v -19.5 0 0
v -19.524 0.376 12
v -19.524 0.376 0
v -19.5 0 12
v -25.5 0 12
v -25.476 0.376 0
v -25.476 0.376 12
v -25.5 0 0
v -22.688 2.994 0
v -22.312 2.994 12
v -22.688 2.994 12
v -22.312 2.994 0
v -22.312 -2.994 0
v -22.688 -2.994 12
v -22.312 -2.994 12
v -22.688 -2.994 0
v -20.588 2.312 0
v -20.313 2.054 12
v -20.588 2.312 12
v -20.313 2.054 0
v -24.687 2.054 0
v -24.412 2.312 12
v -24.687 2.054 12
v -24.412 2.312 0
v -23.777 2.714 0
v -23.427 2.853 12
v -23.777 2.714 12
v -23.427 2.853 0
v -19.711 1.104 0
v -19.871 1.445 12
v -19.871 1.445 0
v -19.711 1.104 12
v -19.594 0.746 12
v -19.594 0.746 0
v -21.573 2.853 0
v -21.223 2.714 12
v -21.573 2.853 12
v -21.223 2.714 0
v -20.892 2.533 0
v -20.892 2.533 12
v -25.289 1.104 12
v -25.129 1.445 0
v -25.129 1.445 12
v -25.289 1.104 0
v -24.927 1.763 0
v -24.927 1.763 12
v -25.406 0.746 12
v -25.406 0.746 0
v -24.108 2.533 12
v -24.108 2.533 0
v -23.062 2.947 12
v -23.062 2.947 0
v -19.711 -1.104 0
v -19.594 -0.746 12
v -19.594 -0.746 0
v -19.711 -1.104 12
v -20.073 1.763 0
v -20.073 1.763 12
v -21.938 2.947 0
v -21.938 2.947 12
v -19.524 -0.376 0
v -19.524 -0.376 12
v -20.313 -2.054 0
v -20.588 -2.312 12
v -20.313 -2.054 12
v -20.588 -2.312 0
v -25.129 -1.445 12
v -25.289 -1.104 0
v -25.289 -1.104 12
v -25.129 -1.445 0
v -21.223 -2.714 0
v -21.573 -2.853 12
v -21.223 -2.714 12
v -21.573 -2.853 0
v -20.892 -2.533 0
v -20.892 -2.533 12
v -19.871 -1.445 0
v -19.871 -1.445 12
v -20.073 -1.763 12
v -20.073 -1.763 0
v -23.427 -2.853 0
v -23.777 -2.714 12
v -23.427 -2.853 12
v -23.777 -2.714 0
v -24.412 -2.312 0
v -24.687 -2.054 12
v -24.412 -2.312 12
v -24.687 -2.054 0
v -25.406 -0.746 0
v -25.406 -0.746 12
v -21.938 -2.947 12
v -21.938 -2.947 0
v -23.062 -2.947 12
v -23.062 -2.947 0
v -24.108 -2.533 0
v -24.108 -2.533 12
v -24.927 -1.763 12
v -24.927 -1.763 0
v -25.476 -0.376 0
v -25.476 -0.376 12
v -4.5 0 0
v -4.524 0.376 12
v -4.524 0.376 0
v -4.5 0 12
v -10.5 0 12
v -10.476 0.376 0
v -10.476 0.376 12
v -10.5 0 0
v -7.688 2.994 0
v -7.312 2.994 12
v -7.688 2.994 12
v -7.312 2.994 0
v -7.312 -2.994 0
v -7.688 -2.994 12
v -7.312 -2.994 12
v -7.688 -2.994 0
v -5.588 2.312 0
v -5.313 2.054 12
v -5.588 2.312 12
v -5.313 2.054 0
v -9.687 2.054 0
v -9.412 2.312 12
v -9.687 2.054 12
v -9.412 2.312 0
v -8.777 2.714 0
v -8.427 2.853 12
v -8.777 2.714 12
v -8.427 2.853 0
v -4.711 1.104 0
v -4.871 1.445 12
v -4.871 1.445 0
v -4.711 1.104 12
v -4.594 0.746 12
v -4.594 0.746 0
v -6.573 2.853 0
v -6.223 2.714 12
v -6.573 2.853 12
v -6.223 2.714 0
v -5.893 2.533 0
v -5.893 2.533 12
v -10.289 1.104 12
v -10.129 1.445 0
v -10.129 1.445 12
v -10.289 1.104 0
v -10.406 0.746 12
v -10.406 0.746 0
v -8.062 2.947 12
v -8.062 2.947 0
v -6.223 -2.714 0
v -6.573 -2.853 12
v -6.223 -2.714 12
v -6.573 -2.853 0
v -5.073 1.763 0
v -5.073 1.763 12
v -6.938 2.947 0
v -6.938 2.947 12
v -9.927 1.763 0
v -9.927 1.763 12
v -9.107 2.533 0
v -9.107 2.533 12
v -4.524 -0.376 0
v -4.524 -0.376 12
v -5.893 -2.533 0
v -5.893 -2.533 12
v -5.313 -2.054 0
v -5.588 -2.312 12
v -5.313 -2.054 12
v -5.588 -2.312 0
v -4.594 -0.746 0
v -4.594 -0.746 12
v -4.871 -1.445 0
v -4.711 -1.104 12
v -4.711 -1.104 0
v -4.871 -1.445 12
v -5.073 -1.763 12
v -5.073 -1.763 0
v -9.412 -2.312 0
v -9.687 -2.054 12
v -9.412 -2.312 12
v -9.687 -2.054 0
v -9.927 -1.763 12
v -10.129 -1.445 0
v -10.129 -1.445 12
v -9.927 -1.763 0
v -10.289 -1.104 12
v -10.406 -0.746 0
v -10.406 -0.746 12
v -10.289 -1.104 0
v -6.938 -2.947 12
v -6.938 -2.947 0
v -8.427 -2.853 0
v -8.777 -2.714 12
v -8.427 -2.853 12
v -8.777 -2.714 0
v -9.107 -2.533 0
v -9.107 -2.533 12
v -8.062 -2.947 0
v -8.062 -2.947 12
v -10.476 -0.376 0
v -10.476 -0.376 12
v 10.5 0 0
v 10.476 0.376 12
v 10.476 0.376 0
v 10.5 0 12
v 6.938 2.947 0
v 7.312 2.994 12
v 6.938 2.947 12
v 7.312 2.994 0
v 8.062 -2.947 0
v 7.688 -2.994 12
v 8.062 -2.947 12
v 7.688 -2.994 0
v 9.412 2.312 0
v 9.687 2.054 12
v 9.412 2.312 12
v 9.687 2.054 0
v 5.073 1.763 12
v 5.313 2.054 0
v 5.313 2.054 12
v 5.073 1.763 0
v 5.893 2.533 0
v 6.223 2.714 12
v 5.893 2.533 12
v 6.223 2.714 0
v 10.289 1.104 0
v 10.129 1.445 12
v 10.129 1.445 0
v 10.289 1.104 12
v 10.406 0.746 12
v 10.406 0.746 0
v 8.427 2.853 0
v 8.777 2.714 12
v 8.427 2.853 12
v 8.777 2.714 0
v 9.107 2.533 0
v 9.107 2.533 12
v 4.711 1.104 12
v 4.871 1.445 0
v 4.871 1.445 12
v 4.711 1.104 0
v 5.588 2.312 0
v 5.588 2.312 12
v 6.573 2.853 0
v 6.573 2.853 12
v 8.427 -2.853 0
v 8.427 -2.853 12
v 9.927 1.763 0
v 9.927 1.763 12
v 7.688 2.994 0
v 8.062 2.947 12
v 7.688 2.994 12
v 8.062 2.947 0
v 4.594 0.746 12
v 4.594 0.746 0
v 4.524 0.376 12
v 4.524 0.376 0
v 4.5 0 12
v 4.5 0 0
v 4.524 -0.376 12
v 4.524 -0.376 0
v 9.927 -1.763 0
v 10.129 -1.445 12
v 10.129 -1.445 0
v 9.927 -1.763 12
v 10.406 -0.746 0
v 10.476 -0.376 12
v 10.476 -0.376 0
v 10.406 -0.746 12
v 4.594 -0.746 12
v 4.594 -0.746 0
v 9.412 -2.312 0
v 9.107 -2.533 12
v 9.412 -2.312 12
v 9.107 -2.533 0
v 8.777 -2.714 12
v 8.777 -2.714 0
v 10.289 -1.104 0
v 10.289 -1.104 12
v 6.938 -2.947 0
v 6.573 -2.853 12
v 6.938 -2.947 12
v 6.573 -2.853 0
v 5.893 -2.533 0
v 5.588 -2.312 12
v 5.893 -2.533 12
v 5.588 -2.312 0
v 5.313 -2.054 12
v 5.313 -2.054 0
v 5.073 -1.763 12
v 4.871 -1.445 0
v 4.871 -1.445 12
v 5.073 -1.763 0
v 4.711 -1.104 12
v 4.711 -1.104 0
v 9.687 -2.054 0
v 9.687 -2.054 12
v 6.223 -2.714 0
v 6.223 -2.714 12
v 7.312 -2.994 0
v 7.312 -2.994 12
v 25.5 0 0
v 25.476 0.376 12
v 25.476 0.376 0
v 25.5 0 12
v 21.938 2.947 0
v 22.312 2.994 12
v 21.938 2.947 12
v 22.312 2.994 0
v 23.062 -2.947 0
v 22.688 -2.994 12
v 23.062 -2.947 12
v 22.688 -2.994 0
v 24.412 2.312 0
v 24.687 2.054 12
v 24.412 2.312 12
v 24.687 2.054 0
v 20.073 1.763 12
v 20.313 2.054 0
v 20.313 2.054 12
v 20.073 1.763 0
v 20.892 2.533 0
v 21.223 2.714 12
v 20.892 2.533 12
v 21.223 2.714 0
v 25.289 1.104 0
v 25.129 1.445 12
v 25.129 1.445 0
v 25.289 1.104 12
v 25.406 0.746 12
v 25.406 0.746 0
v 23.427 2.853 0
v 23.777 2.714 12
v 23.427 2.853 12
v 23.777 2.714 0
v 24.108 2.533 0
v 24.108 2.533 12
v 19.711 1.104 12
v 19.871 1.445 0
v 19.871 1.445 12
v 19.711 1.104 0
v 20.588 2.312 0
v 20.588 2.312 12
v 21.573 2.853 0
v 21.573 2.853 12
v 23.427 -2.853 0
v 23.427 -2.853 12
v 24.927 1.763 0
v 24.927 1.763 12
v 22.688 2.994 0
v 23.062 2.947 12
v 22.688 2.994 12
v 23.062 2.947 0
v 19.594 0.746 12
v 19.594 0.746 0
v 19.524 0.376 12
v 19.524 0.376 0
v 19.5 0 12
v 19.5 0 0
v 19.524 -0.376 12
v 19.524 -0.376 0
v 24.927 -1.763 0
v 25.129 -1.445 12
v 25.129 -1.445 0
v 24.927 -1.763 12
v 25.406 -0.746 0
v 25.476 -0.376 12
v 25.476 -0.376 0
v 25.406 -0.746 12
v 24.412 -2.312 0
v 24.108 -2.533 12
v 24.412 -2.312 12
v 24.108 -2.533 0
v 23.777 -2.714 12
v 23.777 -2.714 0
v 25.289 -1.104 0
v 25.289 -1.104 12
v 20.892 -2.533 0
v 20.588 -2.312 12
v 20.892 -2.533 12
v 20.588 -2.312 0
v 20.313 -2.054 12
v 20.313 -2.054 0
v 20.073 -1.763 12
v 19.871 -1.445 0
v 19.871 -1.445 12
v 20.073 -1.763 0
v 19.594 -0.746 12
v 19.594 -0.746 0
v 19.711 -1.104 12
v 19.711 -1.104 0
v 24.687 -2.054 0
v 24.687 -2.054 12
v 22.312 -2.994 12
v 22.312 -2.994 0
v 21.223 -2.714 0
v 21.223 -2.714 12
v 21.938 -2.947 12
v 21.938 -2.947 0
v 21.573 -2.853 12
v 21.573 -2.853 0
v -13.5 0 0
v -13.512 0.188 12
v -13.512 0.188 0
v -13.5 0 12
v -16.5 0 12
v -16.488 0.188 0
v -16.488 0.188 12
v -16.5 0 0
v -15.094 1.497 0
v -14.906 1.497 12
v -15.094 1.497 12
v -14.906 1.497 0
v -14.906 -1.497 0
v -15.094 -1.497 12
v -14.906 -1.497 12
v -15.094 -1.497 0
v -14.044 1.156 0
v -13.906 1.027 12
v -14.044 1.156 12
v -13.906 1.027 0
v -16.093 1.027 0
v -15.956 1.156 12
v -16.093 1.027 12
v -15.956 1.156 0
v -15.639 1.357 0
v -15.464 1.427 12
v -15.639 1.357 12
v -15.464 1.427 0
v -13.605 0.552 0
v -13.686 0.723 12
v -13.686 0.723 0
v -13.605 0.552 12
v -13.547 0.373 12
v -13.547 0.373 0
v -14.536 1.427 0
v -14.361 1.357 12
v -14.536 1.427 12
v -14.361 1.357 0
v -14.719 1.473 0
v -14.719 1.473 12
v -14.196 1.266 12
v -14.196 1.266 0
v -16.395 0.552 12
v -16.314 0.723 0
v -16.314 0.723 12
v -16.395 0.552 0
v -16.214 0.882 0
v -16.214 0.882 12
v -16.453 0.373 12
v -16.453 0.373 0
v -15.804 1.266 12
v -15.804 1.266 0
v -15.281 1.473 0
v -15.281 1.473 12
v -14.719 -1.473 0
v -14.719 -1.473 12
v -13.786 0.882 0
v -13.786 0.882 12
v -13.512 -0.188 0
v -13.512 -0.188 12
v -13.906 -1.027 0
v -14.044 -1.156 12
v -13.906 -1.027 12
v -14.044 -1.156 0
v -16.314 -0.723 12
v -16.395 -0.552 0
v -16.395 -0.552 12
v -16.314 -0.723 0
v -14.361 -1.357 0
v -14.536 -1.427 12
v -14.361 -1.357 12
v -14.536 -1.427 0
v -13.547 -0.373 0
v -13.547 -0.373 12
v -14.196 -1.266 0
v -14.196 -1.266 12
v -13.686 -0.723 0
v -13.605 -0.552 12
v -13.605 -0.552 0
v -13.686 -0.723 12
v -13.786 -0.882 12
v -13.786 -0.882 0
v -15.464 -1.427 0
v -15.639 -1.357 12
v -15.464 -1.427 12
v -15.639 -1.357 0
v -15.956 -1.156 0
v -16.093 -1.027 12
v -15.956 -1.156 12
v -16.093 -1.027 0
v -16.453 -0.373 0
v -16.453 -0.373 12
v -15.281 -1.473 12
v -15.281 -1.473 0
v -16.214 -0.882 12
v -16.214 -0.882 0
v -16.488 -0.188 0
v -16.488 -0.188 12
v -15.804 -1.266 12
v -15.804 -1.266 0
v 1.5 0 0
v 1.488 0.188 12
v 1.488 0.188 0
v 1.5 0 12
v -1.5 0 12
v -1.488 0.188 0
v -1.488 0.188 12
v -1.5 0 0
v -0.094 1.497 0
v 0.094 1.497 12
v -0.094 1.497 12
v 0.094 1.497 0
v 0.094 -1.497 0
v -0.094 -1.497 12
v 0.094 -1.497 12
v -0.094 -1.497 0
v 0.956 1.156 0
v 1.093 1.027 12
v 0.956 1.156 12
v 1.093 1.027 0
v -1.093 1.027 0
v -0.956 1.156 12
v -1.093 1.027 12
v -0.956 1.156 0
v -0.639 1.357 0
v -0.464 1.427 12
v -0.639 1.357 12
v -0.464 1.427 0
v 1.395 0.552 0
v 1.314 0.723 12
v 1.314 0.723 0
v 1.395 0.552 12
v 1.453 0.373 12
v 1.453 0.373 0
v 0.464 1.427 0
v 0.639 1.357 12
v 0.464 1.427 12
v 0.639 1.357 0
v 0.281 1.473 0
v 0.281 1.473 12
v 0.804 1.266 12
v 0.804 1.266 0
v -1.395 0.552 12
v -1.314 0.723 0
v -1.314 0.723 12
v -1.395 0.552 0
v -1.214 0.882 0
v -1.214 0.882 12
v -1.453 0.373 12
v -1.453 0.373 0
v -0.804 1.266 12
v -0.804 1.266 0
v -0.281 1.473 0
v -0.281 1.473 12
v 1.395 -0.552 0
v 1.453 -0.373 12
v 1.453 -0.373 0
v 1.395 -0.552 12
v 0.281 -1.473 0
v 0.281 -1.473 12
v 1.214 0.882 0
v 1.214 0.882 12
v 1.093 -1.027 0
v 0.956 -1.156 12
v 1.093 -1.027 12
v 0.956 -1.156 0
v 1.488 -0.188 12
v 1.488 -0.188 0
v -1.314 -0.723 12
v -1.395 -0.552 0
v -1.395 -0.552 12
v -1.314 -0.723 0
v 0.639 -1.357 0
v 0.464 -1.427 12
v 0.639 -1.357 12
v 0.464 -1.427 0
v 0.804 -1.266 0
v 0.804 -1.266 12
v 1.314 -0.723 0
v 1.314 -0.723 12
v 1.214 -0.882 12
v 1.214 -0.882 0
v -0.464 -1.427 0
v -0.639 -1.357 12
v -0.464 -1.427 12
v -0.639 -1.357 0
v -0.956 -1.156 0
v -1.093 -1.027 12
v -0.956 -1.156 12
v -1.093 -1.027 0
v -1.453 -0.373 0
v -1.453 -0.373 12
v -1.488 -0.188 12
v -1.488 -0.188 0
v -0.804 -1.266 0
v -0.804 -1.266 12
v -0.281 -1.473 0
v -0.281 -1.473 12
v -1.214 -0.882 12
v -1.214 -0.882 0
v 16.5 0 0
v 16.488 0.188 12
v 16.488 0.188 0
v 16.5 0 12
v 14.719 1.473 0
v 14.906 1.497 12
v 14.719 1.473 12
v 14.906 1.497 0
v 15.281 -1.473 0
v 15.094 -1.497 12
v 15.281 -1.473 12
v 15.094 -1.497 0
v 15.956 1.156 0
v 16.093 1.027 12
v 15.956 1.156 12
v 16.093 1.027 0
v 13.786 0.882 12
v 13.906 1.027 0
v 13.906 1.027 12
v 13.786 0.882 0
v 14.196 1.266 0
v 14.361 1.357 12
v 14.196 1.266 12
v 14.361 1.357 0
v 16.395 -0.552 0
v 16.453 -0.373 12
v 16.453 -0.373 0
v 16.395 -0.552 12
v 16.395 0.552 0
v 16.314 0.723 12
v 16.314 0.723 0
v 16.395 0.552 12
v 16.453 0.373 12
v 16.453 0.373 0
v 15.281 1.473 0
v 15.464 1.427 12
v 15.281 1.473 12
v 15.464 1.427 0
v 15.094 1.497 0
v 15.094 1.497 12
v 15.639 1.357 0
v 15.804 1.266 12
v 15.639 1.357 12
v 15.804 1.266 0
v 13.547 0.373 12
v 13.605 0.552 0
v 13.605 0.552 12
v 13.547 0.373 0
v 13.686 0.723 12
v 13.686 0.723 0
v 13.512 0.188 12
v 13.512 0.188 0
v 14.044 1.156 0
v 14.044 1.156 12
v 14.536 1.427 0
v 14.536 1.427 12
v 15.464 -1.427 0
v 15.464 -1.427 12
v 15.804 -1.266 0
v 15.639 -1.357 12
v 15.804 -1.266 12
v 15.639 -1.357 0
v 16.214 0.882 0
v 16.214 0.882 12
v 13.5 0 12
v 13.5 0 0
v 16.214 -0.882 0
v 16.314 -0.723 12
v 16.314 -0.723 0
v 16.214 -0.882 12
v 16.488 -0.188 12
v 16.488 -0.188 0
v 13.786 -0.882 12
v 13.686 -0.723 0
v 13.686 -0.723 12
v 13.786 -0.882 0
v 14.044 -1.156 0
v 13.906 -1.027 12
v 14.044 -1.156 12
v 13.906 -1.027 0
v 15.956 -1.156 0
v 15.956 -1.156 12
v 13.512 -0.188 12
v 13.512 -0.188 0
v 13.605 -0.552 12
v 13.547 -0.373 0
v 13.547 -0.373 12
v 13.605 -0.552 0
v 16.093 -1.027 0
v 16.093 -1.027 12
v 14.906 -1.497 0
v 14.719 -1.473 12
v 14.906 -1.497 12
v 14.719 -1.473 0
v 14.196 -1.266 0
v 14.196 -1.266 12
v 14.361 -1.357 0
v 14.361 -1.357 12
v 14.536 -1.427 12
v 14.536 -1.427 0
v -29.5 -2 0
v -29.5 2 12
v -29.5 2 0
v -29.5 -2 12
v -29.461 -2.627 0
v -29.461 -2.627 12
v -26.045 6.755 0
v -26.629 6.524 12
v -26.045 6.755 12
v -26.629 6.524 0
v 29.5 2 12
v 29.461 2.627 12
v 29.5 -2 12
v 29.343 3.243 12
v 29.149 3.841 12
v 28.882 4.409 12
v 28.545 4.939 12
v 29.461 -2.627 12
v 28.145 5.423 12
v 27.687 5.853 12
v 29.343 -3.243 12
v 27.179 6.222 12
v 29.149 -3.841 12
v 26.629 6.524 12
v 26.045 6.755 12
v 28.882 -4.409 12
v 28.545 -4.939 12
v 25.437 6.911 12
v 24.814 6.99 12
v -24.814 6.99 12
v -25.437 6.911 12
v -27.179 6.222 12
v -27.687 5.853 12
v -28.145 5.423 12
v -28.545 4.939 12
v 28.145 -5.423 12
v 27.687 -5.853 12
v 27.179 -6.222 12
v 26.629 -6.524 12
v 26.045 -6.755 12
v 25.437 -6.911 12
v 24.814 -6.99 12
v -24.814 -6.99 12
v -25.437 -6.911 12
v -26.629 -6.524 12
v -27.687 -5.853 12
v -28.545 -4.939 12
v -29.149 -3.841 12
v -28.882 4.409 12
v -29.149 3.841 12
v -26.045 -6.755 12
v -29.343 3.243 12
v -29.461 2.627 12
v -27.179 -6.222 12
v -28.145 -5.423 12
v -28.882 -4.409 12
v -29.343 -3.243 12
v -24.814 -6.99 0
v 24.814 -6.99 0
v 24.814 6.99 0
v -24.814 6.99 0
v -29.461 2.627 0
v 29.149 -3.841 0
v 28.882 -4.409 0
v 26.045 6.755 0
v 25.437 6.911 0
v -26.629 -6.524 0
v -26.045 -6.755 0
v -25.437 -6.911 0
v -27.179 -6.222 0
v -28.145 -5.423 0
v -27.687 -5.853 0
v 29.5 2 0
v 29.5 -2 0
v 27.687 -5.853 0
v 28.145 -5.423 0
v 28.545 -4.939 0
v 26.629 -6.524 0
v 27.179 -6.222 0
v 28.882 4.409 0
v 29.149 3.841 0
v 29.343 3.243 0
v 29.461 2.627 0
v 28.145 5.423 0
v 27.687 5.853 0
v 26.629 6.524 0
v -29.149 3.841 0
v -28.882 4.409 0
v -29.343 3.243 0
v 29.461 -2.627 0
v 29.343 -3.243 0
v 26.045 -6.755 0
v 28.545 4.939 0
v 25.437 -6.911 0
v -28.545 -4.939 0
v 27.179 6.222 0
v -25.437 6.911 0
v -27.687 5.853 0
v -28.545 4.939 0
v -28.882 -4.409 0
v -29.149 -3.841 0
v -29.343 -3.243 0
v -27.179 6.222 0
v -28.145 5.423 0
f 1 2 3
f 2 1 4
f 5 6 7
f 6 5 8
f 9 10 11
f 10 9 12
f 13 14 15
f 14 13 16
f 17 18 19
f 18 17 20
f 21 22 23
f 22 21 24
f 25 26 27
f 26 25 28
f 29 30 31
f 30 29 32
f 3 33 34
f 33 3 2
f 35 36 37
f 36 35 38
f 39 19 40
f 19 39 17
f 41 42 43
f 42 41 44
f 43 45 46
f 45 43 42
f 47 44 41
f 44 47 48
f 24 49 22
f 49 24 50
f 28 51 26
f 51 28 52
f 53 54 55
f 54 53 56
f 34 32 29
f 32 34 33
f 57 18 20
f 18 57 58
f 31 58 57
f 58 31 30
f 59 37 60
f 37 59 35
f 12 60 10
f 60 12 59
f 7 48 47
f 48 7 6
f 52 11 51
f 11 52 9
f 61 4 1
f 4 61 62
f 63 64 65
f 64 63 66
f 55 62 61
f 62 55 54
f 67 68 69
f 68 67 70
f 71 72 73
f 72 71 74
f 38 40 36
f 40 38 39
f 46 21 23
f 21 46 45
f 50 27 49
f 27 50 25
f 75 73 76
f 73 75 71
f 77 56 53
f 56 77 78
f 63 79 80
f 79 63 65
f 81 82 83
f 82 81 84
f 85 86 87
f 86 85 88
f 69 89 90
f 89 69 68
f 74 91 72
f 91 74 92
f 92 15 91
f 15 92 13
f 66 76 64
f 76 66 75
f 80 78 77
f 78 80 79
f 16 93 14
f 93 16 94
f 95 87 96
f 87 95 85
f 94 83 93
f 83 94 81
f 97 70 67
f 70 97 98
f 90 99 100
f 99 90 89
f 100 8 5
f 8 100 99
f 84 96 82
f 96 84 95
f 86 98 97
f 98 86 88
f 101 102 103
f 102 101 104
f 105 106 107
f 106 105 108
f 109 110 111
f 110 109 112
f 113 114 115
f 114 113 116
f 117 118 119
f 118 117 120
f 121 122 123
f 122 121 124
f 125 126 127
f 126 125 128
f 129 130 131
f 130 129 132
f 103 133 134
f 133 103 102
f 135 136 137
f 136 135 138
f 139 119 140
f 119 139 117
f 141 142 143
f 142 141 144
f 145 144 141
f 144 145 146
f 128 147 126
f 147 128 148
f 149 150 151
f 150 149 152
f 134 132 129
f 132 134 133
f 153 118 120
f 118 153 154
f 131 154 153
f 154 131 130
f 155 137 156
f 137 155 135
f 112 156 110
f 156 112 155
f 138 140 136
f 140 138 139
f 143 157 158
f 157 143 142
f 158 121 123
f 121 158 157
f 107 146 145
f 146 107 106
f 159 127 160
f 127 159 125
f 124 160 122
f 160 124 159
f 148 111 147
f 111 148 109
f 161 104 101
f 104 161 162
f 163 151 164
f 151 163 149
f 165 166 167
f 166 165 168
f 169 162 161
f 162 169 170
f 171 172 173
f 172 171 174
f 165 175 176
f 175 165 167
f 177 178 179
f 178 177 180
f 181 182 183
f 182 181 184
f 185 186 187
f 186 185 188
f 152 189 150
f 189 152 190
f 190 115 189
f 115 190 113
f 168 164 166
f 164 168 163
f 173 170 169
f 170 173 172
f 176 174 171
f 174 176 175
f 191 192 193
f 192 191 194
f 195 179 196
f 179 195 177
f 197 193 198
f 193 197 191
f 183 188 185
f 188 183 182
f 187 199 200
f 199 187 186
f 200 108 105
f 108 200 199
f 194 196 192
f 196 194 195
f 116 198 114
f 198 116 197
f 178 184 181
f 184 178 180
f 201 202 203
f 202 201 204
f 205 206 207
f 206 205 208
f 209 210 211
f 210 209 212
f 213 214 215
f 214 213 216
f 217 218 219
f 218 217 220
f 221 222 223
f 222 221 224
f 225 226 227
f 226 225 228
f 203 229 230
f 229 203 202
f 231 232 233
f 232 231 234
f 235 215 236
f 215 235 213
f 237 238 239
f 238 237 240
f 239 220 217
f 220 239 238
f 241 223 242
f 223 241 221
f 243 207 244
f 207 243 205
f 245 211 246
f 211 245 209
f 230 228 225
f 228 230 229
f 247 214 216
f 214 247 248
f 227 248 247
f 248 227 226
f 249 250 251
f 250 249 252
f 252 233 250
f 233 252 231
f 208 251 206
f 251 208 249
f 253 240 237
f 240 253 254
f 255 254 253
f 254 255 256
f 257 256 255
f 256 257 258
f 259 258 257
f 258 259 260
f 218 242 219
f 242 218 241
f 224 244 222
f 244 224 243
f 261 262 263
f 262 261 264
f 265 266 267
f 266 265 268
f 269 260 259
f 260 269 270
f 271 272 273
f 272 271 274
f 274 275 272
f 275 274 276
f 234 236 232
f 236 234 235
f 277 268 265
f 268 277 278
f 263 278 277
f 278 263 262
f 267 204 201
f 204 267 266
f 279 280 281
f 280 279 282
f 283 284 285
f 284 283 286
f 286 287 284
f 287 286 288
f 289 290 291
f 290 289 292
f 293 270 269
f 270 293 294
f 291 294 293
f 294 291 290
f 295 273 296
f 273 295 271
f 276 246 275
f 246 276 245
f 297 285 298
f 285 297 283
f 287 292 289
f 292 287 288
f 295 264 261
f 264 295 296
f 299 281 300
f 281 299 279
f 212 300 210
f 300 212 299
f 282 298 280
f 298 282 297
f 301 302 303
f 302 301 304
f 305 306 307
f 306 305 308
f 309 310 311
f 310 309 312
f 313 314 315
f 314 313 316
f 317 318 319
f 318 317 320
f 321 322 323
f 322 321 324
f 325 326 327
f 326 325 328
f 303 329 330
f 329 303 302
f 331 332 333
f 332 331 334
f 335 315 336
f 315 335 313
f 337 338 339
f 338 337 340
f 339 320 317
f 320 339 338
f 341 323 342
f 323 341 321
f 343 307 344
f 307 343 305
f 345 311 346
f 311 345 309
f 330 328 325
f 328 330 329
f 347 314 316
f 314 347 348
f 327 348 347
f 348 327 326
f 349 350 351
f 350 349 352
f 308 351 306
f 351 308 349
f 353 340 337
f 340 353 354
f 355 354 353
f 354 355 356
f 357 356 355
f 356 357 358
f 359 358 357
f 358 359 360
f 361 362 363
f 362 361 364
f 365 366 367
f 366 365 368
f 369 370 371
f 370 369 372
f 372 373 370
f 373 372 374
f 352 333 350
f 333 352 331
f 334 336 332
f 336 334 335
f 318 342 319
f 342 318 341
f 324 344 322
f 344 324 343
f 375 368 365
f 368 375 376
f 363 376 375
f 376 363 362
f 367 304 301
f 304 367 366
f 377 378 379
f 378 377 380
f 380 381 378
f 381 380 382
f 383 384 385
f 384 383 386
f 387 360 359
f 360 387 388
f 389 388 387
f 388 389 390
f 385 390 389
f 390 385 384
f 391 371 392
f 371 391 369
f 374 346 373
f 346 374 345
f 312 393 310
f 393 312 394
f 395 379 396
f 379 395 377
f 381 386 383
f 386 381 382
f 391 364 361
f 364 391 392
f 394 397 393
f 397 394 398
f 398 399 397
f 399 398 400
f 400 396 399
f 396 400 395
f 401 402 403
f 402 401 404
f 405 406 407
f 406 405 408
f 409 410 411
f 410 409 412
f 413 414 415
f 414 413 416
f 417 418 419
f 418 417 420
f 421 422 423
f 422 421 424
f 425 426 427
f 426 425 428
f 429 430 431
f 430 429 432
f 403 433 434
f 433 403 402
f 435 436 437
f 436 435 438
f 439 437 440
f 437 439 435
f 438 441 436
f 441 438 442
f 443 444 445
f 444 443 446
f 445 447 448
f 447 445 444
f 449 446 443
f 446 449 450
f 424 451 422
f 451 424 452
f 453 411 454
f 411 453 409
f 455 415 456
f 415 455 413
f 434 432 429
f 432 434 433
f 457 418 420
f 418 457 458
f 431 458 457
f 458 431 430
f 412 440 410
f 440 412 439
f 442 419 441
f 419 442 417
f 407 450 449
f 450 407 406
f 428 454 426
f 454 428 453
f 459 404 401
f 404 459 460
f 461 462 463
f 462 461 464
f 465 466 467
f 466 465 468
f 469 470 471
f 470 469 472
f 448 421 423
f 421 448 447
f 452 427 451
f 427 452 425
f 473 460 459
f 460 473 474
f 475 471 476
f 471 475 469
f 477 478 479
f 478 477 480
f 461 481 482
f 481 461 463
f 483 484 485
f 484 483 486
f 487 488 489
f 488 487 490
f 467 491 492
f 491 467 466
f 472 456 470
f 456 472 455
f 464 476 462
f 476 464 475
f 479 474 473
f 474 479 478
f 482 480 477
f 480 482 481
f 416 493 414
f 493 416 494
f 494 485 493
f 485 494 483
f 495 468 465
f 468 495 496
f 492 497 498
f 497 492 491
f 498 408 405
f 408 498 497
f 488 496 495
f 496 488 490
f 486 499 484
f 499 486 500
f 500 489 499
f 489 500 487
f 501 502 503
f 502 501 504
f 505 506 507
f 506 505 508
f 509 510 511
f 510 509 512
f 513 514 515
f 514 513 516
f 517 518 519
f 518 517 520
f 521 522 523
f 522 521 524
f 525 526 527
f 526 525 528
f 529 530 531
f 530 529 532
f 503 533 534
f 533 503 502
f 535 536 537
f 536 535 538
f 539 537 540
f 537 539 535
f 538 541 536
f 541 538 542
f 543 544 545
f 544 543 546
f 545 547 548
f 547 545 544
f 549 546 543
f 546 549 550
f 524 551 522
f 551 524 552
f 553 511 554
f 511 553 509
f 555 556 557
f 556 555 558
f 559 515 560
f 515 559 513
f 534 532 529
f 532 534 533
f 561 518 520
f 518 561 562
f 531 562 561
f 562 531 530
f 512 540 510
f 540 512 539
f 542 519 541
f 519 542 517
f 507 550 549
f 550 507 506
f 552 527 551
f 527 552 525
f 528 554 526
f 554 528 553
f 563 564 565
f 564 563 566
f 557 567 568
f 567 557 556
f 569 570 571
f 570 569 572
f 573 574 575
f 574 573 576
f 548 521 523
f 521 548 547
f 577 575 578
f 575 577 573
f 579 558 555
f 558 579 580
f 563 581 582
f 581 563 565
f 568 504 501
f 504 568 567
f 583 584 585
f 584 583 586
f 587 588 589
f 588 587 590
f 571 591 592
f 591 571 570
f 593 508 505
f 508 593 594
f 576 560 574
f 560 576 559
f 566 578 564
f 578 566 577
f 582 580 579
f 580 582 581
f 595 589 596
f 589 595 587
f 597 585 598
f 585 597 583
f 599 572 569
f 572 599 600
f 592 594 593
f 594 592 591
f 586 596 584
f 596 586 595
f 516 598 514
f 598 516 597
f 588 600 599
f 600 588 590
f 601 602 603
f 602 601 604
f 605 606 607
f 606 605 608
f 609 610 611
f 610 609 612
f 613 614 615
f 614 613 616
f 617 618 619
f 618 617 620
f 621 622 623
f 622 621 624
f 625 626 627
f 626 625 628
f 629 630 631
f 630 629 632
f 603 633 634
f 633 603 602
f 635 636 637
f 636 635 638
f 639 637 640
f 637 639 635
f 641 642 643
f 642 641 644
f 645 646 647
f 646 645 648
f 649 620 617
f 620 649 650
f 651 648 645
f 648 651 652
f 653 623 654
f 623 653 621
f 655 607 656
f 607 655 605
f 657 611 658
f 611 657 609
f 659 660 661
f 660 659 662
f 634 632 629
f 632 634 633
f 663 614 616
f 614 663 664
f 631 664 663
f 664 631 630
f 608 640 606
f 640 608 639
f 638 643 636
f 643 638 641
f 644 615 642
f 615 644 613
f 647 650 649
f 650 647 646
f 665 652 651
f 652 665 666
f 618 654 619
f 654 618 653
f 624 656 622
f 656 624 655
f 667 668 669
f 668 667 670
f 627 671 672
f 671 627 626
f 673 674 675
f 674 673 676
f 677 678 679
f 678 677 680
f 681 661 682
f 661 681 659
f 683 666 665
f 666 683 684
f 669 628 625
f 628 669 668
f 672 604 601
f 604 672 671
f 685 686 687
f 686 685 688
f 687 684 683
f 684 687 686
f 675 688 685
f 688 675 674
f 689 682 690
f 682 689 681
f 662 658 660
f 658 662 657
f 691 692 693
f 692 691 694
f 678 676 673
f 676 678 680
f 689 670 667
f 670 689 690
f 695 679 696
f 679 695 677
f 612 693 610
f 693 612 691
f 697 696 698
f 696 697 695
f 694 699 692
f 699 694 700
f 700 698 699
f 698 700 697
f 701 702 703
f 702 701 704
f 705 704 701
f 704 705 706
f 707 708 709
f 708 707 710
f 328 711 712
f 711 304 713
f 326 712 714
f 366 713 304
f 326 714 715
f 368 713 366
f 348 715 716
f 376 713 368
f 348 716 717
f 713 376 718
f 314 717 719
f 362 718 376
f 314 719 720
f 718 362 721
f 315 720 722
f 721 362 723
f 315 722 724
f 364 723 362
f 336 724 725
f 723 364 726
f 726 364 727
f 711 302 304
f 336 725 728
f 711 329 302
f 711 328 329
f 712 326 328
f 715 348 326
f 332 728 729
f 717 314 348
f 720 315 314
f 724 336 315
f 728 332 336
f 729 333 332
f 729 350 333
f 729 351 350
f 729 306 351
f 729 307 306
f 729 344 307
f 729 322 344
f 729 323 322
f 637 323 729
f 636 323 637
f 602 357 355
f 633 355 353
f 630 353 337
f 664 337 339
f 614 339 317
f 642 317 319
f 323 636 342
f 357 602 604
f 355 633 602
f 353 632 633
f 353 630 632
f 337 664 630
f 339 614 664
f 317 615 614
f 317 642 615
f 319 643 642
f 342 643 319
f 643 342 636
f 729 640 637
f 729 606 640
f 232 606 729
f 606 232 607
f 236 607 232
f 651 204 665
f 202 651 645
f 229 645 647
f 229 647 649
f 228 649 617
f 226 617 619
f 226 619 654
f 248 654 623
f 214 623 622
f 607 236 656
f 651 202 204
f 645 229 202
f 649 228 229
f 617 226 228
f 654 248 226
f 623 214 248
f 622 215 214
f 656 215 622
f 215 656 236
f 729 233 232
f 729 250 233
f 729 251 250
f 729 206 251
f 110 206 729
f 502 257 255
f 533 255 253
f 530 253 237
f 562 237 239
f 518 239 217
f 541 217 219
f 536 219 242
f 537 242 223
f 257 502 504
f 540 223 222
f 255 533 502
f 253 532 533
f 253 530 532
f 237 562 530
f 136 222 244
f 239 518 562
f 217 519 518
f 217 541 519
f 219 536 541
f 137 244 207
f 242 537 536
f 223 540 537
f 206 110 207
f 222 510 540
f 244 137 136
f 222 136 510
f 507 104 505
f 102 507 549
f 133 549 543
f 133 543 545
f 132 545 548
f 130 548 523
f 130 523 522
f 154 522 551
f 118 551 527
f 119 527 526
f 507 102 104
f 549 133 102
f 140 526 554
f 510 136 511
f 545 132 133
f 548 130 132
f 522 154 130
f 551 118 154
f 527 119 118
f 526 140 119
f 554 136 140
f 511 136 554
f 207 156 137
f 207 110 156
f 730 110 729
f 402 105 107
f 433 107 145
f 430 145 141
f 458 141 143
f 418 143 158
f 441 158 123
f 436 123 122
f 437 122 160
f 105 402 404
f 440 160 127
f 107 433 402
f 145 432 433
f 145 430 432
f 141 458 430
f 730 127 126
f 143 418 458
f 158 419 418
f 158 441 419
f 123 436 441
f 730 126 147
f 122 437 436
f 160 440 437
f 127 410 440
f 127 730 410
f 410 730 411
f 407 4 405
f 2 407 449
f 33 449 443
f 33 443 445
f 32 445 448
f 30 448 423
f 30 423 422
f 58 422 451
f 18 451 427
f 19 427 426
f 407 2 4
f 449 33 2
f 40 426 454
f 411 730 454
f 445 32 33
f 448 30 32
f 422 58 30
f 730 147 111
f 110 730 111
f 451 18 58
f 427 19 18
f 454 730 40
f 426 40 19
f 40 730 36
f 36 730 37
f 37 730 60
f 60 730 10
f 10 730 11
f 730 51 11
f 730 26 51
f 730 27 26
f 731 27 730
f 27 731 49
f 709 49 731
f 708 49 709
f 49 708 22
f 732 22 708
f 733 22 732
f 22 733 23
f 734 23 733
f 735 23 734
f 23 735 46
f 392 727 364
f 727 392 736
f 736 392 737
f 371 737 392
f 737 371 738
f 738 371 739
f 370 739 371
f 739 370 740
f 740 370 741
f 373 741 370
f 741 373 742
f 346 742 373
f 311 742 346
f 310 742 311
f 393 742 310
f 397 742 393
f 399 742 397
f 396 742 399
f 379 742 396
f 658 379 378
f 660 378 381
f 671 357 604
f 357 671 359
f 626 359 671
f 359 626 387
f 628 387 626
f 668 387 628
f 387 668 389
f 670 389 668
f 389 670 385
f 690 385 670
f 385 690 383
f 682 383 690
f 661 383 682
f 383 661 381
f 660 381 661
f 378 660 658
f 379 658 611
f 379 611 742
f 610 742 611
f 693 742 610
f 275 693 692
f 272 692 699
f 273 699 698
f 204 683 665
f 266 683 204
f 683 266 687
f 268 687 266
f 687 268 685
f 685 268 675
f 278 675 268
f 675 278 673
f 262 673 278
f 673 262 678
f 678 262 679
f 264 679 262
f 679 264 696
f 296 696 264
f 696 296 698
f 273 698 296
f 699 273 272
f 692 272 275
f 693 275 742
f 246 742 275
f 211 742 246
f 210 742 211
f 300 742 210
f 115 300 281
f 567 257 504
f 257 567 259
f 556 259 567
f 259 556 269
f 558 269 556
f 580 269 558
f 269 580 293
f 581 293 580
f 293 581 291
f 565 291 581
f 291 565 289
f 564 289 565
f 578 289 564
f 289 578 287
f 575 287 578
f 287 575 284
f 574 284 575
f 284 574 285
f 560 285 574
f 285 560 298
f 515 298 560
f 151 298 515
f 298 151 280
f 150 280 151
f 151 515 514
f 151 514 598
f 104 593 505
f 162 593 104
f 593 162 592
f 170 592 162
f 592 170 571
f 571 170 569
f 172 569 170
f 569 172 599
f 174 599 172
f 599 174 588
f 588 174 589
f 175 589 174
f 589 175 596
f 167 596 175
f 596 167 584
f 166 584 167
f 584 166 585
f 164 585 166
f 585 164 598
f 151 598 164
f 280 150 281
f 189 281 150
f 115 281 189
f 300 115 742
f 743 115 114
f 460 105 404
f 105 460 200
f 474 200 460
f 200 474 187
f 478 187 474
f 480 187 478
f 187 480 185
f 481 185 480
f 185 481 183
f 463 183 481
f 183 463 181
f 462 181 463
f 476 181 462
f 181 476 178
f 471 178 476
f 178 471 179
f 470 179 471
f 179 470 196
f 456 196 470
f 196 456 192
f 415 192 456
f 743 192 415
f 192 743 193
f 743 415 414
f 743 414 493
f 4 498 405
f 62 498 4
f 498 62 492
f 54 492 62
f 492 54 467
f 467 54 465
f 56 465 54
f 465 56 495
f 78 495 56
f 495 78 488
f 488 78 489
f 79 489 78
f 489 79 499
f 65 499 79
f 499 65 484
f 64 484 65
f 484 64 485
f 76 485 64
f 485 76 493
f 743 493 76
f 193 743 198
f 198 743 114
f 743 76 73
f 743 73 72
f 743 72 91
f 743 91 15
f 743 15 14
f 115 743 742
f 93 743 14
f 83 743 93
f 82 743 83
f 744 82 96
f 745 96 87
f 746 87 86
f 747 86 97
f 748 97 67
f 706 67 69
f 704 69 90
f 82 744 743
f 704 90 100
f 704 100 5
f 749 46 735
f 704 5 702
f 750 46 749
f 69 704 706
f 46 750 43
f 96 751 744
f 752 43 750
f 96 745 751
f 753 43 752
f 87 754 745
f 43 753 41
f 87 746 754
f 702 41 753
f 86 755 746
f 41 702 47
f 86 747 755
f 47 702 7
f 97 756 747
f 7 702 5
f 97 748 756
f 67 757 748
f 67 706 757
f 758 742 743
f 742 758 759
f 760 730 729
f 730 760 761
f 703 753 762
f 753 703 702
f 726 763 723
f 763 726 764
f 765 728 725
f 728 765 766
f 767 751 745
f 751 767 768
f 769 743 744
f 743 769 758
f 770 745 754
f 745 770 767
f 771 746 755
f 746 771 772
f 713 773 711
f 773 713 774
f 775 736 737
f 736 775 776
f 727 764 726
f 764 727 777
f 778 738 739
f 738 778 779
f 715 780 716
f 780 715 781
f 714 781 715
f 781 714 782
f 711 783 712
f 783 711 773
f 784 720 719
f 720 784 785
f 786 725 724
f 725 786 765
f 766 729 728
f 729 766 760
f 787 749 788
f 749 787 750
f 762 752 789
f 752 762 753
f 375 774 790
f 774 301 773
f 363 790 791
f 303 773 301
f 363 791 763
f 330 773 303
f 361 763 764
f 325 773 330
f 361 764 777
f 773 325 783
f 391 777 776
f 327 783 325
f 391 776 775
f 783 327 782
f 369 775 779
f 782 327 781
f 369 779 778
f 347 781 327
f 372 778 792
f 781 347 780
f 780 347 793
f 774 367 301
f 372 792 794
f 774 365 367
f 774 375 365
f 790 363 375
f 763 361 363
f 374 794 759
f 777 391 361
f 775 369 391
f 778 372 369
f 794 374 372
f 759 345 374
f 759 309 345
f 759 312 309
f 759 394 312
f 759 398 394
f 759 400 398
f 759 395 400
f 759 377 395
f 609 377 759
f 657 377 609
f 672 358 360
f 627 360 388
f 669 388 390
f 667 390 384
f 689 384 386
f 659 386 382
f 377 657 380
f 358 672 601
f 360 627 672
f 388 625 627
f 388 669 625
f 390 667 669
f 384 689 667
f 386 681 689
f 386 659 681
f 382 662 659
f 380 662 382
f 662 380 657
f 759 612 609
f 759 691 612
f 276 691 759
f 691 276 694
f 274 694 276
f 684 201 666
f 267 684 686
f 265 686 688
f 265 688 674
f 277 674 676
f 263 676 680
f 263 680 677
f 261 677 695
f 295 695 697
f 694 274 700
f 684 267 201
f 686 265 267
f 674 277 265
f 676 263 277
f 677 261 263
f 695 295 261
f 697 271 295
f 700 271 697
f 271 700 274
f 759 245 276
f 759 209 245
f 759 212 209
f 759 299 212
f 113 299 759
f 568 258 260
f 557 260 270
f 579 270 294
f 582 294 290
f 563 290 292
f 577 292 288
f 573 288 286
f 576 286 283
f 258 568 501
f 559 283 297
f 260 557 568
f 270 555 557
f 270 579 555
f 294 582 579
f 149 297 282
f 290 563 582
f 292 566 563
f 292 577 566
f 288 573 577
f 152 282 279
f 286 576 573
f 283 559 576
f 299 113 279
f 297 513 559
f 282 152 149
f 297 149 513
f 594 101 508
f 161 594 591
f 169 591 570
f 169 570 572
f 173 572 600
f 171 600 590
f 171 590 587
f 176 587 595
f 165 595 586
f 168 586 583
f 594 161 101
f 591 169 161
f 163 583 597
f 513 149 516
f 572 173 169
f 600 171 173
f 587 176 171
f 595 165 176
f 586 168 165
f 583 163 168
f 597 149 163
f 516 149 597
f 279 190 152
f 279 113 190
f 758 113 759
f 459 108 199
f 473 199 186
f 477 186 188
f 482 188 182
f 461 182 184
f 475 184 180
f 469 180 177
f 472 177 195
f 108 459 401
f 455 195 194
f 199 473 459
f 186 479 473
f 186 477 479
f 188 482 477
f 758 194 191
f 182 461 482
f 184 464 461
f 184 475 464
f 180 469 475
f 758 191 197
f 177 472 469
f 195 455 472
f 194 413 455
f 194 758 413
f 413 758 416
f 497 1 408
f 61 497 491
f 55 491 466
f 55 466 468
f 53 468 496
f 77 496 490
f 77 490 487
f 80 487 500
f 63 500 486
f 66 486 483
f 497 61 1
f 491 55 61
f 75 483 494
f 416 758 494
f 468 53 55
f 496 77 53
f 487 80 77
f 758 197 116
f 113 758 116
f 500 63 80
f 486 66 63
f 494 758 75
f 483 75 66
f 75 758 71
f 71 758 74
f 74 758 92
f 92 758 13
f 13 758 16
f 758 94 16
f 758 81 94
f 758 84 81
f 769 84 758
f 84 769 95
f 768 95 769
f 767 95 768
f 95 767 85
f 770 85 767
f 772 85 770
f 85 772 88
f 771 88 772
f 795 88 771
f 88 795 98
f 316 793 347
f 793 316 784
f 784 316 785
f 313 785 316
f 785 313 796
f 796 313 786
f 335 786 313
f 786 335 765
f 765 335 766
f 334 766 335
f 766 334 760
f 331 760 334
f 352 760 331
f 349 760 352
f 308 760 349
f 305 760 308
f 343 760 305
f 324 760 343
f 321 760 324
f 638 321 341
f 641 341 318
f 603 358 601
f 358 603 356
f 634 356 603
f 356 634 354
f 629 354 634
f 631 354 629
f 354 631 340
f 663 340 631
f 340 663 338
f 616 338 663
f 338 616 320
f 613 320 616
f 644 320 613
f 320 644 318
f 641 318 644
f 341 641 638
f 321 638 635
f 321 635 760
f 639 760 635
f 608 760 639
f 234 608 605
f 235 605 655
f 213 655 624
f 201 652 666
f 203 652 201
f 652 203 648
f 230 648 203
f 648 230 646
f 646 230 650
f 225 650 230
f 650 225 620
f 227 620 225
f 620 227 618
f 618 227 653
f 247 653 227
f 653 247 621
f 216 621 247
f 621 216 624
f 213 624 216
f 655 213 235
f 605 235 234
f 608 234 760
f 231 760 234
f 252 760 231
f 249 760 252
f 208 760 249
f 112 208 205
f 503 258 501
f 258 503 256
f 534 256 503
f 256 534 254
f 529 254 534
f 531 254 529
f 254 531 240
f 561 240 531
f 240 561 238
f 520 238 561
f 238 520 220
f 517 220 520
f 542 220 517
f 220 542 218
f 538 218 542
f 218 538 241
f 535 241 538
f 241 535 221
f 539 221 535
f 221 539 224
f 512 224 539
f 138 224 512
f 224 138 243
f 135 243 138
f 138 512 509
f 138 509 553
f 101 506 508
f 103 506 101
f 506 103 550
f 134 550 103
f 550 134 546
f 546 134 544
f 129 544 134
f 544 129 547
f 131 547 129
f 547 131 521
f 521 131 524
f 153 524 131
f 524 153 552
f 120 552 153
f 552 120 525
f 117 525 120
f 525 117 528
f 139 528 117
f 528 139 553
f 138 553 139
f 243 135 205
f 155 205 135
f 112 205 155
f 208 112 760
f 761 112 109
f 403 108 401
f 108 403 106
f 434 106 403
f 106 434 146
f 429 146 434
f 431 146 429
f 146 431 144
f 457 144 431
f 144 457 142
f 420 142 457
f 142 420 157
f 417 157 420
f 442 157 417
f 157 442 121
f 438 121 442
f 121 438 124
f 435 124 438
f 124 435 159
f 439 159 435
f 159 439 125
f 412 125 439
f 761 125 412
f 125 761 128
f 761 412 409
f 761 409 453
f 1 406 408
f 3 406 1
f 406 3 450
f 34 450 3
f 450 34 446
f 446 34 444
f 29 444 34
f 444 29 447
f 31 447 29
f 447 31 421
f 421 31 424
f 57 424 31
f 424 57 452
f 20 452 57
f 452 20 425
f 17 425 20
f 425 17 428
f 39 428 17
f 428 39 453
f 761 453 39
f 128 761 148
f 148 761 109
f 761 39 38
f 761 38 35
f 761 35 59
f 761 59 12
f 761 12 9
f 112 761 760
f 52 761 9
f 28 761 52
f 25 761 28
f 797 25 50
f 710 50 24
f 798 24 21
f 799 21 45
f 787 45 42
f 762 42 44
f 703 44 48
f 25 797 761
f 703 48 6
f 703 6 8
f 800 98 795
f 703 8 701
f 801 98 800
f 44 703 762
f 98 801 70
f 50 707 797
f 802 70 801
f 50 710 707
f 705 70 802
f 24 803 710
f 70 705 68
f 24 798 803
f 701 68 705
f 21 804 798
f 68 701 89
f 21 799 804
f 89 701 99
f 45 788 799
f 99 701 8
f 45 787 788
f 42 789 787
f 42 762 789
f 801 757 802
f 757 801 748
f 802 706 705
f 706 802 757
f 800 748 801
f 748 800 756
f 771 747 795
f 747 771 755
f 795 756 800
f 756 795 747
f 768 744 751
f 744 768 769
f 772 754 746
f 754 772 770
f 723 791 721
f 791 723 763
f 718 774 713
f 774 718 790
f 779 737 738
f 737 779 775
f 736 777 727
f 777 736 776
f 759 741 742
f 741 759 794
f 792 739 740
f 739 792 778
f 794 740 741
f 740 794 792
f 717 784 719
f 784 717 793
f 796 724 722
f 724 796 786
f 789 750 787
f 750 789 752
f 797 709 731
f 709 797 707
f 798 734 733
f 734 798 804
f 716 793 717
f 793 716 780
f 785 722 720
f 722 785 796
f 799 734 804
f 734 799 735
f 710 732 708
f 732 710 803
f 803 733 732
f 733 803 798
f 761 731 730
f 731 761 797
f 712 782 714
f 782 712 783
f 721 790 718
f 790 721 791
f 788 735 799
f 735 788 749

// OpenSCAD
$fn = 50;


difference() {
	union() {
		translate(v = [0, 0, 0]) {
			rotate(a = [0, 0, 0]) {
				hull() {
					translate(v = [-24.5000000000, 2.0000000000, 0]) {
						rotate(a = [0, 0, 0]) {
							translate(v = [0, 0, 0]) {
								rotate(a = [0, 0, 0]) {
									cylinder(h = 12, r = 5);
								}
							}
						}
					}
					translate(v = [24.5000000000, 2.0000000000, 0]) {
						rotate(a = [0, 0, 0]) {
							translate(v = [0, 0, 0]) {
								rotate(a = [0, 0, 0]) {
									cylinder(h = 12, r = 5);
								}
							}
						}
					}
					translate(v = [-24.5000000000, -2.0000000000, 0]) {
						rotate(a = [0, 0, 0]) {
							translate(v = [0, 0, 0]) {
								rotate(a = [0, 0, 0]) {
									cylinder(h = 12, r = 5);
								}
							}
						}
					}
					translate(v = [24.5000000000, -2.0000000000, 0]) {
						rotate(a = [0, 0, 0]) {
							translate(v = [0, 0, 0]) {
								rotate(a = [0, 0, 0]) {
									cylinder(h = 12, r = 5);
								}
							}
						}
					}
				}
			}
		}
	}
	union() {
		translate(v = [-22.5000000000, 0.0000000000, 0]) {
			rotate(a = [0, 0, 0]) {
				translate(v = [0, 0, -50]) {
					rotate(a = [0, 0, 0]) {
						cylinder(h = 100, r = 3.0000000000);
					}
				}
			}
		}
		translate(v = [-7.5000000000, 0.0000000000, 0]) {
			rotate(a = [0, 0, 0]) {
				translate(v = [0, 0, -50]) {
					rotate(a = [0, 0, 0]) {
						cylinder(h = 100, r = 3.0000000000);
					}
				}
			}
		}
		translate(v = [7.5000000000, 0.0000000000, 0]) {
			rotate(a = [0, 0, 0]) {
				translate(v = [0, 0, -50]) {
					rotate(a = [0, 0, 0]) {
						cylinder(h = 100, r = 3.0000000000);
					}
				}
			}
		}
		translate(v = [22.5000000000, 0.0000000000, 0]) {
			rotate(a = [0, 0, 0]) {
				translate(v = [0, 0, -50]) {
					rotate(a = [0, 0, 0]) {
						cylinder(h = 100, r = 3.0000000000);
					}
				}
			}
		}
		translate(v = [-22.5000000000, 0.0000000000, 0]) {
			rotate(a = [0, 0, 0]) {
				translate(v = [0, 0, -50]) {
					rotate(a = [0, 0, 0]) {
						cylinder(h = 100, r = 1.5000000000);
					}
				}
			}
		}
		translate(v = [-15.0000000000, 0.0000000000, 0]) {
			rotate(a = [0, 0, 0]) {
				translate(v = [0, 0, -50]) {
					rotate(a = [0, 0, 0]) {
						cylinder(h = 100, r = 1.5000000000);
					}
				}
			}
		}
		translate(v = [-7.5000000000, 0.0000000000, 0]) {
			rotate(a = [0, 0, 0]) {
				translate(v = [0, 0, -50]) {
					rotate(a = [0, 0, 0]) {
						cylinder(h = 100, r = 1.5000000000);
					}
				}
			}
		}
		translate(v = [0.0000000000, 0.0000000000, 0]) {
			rotate(a = [0, 0, 0]) {
				translate(v = [0, 0, -50]) {
					rotate(a = [0, 0, 0]) {
						cylinder(h = 100, r = 1.5000000000);
					}
				}
			}
		}
		translate(v = [7.5000000000, 0.0000000000, 0]) {
			rotate(a = [0, 0, 0]) {
				translate(v = [0, 0, -50]) {
					rotate(a = [0, 0, 0]) {
						cylinder(h = 100, r = 1.5000000000);
					}
				}
			}
		}
		translate(v = [15.0000000000, 0.0000000000, 0]) {
			rotate(a = [0, 0, 0]) {
				translate(v = [0, 0, -50]) {
					rotate(a = [0, 0, 0]) {
						cylinder(h = 100, r = 1.5000000000);
					}
				}
			}
		}
		translate(v = [22.5000000000, 0.0000000000, 0]) {
			rotate(a = [0, 0, 0]) {
				translate(v = [0, 0, -50]) {
					rotate(a = [0, 0, 0]) {
						cylinder(h = 100, r = 1.5000000000);
					}
				}
			}
		}
	}
}
